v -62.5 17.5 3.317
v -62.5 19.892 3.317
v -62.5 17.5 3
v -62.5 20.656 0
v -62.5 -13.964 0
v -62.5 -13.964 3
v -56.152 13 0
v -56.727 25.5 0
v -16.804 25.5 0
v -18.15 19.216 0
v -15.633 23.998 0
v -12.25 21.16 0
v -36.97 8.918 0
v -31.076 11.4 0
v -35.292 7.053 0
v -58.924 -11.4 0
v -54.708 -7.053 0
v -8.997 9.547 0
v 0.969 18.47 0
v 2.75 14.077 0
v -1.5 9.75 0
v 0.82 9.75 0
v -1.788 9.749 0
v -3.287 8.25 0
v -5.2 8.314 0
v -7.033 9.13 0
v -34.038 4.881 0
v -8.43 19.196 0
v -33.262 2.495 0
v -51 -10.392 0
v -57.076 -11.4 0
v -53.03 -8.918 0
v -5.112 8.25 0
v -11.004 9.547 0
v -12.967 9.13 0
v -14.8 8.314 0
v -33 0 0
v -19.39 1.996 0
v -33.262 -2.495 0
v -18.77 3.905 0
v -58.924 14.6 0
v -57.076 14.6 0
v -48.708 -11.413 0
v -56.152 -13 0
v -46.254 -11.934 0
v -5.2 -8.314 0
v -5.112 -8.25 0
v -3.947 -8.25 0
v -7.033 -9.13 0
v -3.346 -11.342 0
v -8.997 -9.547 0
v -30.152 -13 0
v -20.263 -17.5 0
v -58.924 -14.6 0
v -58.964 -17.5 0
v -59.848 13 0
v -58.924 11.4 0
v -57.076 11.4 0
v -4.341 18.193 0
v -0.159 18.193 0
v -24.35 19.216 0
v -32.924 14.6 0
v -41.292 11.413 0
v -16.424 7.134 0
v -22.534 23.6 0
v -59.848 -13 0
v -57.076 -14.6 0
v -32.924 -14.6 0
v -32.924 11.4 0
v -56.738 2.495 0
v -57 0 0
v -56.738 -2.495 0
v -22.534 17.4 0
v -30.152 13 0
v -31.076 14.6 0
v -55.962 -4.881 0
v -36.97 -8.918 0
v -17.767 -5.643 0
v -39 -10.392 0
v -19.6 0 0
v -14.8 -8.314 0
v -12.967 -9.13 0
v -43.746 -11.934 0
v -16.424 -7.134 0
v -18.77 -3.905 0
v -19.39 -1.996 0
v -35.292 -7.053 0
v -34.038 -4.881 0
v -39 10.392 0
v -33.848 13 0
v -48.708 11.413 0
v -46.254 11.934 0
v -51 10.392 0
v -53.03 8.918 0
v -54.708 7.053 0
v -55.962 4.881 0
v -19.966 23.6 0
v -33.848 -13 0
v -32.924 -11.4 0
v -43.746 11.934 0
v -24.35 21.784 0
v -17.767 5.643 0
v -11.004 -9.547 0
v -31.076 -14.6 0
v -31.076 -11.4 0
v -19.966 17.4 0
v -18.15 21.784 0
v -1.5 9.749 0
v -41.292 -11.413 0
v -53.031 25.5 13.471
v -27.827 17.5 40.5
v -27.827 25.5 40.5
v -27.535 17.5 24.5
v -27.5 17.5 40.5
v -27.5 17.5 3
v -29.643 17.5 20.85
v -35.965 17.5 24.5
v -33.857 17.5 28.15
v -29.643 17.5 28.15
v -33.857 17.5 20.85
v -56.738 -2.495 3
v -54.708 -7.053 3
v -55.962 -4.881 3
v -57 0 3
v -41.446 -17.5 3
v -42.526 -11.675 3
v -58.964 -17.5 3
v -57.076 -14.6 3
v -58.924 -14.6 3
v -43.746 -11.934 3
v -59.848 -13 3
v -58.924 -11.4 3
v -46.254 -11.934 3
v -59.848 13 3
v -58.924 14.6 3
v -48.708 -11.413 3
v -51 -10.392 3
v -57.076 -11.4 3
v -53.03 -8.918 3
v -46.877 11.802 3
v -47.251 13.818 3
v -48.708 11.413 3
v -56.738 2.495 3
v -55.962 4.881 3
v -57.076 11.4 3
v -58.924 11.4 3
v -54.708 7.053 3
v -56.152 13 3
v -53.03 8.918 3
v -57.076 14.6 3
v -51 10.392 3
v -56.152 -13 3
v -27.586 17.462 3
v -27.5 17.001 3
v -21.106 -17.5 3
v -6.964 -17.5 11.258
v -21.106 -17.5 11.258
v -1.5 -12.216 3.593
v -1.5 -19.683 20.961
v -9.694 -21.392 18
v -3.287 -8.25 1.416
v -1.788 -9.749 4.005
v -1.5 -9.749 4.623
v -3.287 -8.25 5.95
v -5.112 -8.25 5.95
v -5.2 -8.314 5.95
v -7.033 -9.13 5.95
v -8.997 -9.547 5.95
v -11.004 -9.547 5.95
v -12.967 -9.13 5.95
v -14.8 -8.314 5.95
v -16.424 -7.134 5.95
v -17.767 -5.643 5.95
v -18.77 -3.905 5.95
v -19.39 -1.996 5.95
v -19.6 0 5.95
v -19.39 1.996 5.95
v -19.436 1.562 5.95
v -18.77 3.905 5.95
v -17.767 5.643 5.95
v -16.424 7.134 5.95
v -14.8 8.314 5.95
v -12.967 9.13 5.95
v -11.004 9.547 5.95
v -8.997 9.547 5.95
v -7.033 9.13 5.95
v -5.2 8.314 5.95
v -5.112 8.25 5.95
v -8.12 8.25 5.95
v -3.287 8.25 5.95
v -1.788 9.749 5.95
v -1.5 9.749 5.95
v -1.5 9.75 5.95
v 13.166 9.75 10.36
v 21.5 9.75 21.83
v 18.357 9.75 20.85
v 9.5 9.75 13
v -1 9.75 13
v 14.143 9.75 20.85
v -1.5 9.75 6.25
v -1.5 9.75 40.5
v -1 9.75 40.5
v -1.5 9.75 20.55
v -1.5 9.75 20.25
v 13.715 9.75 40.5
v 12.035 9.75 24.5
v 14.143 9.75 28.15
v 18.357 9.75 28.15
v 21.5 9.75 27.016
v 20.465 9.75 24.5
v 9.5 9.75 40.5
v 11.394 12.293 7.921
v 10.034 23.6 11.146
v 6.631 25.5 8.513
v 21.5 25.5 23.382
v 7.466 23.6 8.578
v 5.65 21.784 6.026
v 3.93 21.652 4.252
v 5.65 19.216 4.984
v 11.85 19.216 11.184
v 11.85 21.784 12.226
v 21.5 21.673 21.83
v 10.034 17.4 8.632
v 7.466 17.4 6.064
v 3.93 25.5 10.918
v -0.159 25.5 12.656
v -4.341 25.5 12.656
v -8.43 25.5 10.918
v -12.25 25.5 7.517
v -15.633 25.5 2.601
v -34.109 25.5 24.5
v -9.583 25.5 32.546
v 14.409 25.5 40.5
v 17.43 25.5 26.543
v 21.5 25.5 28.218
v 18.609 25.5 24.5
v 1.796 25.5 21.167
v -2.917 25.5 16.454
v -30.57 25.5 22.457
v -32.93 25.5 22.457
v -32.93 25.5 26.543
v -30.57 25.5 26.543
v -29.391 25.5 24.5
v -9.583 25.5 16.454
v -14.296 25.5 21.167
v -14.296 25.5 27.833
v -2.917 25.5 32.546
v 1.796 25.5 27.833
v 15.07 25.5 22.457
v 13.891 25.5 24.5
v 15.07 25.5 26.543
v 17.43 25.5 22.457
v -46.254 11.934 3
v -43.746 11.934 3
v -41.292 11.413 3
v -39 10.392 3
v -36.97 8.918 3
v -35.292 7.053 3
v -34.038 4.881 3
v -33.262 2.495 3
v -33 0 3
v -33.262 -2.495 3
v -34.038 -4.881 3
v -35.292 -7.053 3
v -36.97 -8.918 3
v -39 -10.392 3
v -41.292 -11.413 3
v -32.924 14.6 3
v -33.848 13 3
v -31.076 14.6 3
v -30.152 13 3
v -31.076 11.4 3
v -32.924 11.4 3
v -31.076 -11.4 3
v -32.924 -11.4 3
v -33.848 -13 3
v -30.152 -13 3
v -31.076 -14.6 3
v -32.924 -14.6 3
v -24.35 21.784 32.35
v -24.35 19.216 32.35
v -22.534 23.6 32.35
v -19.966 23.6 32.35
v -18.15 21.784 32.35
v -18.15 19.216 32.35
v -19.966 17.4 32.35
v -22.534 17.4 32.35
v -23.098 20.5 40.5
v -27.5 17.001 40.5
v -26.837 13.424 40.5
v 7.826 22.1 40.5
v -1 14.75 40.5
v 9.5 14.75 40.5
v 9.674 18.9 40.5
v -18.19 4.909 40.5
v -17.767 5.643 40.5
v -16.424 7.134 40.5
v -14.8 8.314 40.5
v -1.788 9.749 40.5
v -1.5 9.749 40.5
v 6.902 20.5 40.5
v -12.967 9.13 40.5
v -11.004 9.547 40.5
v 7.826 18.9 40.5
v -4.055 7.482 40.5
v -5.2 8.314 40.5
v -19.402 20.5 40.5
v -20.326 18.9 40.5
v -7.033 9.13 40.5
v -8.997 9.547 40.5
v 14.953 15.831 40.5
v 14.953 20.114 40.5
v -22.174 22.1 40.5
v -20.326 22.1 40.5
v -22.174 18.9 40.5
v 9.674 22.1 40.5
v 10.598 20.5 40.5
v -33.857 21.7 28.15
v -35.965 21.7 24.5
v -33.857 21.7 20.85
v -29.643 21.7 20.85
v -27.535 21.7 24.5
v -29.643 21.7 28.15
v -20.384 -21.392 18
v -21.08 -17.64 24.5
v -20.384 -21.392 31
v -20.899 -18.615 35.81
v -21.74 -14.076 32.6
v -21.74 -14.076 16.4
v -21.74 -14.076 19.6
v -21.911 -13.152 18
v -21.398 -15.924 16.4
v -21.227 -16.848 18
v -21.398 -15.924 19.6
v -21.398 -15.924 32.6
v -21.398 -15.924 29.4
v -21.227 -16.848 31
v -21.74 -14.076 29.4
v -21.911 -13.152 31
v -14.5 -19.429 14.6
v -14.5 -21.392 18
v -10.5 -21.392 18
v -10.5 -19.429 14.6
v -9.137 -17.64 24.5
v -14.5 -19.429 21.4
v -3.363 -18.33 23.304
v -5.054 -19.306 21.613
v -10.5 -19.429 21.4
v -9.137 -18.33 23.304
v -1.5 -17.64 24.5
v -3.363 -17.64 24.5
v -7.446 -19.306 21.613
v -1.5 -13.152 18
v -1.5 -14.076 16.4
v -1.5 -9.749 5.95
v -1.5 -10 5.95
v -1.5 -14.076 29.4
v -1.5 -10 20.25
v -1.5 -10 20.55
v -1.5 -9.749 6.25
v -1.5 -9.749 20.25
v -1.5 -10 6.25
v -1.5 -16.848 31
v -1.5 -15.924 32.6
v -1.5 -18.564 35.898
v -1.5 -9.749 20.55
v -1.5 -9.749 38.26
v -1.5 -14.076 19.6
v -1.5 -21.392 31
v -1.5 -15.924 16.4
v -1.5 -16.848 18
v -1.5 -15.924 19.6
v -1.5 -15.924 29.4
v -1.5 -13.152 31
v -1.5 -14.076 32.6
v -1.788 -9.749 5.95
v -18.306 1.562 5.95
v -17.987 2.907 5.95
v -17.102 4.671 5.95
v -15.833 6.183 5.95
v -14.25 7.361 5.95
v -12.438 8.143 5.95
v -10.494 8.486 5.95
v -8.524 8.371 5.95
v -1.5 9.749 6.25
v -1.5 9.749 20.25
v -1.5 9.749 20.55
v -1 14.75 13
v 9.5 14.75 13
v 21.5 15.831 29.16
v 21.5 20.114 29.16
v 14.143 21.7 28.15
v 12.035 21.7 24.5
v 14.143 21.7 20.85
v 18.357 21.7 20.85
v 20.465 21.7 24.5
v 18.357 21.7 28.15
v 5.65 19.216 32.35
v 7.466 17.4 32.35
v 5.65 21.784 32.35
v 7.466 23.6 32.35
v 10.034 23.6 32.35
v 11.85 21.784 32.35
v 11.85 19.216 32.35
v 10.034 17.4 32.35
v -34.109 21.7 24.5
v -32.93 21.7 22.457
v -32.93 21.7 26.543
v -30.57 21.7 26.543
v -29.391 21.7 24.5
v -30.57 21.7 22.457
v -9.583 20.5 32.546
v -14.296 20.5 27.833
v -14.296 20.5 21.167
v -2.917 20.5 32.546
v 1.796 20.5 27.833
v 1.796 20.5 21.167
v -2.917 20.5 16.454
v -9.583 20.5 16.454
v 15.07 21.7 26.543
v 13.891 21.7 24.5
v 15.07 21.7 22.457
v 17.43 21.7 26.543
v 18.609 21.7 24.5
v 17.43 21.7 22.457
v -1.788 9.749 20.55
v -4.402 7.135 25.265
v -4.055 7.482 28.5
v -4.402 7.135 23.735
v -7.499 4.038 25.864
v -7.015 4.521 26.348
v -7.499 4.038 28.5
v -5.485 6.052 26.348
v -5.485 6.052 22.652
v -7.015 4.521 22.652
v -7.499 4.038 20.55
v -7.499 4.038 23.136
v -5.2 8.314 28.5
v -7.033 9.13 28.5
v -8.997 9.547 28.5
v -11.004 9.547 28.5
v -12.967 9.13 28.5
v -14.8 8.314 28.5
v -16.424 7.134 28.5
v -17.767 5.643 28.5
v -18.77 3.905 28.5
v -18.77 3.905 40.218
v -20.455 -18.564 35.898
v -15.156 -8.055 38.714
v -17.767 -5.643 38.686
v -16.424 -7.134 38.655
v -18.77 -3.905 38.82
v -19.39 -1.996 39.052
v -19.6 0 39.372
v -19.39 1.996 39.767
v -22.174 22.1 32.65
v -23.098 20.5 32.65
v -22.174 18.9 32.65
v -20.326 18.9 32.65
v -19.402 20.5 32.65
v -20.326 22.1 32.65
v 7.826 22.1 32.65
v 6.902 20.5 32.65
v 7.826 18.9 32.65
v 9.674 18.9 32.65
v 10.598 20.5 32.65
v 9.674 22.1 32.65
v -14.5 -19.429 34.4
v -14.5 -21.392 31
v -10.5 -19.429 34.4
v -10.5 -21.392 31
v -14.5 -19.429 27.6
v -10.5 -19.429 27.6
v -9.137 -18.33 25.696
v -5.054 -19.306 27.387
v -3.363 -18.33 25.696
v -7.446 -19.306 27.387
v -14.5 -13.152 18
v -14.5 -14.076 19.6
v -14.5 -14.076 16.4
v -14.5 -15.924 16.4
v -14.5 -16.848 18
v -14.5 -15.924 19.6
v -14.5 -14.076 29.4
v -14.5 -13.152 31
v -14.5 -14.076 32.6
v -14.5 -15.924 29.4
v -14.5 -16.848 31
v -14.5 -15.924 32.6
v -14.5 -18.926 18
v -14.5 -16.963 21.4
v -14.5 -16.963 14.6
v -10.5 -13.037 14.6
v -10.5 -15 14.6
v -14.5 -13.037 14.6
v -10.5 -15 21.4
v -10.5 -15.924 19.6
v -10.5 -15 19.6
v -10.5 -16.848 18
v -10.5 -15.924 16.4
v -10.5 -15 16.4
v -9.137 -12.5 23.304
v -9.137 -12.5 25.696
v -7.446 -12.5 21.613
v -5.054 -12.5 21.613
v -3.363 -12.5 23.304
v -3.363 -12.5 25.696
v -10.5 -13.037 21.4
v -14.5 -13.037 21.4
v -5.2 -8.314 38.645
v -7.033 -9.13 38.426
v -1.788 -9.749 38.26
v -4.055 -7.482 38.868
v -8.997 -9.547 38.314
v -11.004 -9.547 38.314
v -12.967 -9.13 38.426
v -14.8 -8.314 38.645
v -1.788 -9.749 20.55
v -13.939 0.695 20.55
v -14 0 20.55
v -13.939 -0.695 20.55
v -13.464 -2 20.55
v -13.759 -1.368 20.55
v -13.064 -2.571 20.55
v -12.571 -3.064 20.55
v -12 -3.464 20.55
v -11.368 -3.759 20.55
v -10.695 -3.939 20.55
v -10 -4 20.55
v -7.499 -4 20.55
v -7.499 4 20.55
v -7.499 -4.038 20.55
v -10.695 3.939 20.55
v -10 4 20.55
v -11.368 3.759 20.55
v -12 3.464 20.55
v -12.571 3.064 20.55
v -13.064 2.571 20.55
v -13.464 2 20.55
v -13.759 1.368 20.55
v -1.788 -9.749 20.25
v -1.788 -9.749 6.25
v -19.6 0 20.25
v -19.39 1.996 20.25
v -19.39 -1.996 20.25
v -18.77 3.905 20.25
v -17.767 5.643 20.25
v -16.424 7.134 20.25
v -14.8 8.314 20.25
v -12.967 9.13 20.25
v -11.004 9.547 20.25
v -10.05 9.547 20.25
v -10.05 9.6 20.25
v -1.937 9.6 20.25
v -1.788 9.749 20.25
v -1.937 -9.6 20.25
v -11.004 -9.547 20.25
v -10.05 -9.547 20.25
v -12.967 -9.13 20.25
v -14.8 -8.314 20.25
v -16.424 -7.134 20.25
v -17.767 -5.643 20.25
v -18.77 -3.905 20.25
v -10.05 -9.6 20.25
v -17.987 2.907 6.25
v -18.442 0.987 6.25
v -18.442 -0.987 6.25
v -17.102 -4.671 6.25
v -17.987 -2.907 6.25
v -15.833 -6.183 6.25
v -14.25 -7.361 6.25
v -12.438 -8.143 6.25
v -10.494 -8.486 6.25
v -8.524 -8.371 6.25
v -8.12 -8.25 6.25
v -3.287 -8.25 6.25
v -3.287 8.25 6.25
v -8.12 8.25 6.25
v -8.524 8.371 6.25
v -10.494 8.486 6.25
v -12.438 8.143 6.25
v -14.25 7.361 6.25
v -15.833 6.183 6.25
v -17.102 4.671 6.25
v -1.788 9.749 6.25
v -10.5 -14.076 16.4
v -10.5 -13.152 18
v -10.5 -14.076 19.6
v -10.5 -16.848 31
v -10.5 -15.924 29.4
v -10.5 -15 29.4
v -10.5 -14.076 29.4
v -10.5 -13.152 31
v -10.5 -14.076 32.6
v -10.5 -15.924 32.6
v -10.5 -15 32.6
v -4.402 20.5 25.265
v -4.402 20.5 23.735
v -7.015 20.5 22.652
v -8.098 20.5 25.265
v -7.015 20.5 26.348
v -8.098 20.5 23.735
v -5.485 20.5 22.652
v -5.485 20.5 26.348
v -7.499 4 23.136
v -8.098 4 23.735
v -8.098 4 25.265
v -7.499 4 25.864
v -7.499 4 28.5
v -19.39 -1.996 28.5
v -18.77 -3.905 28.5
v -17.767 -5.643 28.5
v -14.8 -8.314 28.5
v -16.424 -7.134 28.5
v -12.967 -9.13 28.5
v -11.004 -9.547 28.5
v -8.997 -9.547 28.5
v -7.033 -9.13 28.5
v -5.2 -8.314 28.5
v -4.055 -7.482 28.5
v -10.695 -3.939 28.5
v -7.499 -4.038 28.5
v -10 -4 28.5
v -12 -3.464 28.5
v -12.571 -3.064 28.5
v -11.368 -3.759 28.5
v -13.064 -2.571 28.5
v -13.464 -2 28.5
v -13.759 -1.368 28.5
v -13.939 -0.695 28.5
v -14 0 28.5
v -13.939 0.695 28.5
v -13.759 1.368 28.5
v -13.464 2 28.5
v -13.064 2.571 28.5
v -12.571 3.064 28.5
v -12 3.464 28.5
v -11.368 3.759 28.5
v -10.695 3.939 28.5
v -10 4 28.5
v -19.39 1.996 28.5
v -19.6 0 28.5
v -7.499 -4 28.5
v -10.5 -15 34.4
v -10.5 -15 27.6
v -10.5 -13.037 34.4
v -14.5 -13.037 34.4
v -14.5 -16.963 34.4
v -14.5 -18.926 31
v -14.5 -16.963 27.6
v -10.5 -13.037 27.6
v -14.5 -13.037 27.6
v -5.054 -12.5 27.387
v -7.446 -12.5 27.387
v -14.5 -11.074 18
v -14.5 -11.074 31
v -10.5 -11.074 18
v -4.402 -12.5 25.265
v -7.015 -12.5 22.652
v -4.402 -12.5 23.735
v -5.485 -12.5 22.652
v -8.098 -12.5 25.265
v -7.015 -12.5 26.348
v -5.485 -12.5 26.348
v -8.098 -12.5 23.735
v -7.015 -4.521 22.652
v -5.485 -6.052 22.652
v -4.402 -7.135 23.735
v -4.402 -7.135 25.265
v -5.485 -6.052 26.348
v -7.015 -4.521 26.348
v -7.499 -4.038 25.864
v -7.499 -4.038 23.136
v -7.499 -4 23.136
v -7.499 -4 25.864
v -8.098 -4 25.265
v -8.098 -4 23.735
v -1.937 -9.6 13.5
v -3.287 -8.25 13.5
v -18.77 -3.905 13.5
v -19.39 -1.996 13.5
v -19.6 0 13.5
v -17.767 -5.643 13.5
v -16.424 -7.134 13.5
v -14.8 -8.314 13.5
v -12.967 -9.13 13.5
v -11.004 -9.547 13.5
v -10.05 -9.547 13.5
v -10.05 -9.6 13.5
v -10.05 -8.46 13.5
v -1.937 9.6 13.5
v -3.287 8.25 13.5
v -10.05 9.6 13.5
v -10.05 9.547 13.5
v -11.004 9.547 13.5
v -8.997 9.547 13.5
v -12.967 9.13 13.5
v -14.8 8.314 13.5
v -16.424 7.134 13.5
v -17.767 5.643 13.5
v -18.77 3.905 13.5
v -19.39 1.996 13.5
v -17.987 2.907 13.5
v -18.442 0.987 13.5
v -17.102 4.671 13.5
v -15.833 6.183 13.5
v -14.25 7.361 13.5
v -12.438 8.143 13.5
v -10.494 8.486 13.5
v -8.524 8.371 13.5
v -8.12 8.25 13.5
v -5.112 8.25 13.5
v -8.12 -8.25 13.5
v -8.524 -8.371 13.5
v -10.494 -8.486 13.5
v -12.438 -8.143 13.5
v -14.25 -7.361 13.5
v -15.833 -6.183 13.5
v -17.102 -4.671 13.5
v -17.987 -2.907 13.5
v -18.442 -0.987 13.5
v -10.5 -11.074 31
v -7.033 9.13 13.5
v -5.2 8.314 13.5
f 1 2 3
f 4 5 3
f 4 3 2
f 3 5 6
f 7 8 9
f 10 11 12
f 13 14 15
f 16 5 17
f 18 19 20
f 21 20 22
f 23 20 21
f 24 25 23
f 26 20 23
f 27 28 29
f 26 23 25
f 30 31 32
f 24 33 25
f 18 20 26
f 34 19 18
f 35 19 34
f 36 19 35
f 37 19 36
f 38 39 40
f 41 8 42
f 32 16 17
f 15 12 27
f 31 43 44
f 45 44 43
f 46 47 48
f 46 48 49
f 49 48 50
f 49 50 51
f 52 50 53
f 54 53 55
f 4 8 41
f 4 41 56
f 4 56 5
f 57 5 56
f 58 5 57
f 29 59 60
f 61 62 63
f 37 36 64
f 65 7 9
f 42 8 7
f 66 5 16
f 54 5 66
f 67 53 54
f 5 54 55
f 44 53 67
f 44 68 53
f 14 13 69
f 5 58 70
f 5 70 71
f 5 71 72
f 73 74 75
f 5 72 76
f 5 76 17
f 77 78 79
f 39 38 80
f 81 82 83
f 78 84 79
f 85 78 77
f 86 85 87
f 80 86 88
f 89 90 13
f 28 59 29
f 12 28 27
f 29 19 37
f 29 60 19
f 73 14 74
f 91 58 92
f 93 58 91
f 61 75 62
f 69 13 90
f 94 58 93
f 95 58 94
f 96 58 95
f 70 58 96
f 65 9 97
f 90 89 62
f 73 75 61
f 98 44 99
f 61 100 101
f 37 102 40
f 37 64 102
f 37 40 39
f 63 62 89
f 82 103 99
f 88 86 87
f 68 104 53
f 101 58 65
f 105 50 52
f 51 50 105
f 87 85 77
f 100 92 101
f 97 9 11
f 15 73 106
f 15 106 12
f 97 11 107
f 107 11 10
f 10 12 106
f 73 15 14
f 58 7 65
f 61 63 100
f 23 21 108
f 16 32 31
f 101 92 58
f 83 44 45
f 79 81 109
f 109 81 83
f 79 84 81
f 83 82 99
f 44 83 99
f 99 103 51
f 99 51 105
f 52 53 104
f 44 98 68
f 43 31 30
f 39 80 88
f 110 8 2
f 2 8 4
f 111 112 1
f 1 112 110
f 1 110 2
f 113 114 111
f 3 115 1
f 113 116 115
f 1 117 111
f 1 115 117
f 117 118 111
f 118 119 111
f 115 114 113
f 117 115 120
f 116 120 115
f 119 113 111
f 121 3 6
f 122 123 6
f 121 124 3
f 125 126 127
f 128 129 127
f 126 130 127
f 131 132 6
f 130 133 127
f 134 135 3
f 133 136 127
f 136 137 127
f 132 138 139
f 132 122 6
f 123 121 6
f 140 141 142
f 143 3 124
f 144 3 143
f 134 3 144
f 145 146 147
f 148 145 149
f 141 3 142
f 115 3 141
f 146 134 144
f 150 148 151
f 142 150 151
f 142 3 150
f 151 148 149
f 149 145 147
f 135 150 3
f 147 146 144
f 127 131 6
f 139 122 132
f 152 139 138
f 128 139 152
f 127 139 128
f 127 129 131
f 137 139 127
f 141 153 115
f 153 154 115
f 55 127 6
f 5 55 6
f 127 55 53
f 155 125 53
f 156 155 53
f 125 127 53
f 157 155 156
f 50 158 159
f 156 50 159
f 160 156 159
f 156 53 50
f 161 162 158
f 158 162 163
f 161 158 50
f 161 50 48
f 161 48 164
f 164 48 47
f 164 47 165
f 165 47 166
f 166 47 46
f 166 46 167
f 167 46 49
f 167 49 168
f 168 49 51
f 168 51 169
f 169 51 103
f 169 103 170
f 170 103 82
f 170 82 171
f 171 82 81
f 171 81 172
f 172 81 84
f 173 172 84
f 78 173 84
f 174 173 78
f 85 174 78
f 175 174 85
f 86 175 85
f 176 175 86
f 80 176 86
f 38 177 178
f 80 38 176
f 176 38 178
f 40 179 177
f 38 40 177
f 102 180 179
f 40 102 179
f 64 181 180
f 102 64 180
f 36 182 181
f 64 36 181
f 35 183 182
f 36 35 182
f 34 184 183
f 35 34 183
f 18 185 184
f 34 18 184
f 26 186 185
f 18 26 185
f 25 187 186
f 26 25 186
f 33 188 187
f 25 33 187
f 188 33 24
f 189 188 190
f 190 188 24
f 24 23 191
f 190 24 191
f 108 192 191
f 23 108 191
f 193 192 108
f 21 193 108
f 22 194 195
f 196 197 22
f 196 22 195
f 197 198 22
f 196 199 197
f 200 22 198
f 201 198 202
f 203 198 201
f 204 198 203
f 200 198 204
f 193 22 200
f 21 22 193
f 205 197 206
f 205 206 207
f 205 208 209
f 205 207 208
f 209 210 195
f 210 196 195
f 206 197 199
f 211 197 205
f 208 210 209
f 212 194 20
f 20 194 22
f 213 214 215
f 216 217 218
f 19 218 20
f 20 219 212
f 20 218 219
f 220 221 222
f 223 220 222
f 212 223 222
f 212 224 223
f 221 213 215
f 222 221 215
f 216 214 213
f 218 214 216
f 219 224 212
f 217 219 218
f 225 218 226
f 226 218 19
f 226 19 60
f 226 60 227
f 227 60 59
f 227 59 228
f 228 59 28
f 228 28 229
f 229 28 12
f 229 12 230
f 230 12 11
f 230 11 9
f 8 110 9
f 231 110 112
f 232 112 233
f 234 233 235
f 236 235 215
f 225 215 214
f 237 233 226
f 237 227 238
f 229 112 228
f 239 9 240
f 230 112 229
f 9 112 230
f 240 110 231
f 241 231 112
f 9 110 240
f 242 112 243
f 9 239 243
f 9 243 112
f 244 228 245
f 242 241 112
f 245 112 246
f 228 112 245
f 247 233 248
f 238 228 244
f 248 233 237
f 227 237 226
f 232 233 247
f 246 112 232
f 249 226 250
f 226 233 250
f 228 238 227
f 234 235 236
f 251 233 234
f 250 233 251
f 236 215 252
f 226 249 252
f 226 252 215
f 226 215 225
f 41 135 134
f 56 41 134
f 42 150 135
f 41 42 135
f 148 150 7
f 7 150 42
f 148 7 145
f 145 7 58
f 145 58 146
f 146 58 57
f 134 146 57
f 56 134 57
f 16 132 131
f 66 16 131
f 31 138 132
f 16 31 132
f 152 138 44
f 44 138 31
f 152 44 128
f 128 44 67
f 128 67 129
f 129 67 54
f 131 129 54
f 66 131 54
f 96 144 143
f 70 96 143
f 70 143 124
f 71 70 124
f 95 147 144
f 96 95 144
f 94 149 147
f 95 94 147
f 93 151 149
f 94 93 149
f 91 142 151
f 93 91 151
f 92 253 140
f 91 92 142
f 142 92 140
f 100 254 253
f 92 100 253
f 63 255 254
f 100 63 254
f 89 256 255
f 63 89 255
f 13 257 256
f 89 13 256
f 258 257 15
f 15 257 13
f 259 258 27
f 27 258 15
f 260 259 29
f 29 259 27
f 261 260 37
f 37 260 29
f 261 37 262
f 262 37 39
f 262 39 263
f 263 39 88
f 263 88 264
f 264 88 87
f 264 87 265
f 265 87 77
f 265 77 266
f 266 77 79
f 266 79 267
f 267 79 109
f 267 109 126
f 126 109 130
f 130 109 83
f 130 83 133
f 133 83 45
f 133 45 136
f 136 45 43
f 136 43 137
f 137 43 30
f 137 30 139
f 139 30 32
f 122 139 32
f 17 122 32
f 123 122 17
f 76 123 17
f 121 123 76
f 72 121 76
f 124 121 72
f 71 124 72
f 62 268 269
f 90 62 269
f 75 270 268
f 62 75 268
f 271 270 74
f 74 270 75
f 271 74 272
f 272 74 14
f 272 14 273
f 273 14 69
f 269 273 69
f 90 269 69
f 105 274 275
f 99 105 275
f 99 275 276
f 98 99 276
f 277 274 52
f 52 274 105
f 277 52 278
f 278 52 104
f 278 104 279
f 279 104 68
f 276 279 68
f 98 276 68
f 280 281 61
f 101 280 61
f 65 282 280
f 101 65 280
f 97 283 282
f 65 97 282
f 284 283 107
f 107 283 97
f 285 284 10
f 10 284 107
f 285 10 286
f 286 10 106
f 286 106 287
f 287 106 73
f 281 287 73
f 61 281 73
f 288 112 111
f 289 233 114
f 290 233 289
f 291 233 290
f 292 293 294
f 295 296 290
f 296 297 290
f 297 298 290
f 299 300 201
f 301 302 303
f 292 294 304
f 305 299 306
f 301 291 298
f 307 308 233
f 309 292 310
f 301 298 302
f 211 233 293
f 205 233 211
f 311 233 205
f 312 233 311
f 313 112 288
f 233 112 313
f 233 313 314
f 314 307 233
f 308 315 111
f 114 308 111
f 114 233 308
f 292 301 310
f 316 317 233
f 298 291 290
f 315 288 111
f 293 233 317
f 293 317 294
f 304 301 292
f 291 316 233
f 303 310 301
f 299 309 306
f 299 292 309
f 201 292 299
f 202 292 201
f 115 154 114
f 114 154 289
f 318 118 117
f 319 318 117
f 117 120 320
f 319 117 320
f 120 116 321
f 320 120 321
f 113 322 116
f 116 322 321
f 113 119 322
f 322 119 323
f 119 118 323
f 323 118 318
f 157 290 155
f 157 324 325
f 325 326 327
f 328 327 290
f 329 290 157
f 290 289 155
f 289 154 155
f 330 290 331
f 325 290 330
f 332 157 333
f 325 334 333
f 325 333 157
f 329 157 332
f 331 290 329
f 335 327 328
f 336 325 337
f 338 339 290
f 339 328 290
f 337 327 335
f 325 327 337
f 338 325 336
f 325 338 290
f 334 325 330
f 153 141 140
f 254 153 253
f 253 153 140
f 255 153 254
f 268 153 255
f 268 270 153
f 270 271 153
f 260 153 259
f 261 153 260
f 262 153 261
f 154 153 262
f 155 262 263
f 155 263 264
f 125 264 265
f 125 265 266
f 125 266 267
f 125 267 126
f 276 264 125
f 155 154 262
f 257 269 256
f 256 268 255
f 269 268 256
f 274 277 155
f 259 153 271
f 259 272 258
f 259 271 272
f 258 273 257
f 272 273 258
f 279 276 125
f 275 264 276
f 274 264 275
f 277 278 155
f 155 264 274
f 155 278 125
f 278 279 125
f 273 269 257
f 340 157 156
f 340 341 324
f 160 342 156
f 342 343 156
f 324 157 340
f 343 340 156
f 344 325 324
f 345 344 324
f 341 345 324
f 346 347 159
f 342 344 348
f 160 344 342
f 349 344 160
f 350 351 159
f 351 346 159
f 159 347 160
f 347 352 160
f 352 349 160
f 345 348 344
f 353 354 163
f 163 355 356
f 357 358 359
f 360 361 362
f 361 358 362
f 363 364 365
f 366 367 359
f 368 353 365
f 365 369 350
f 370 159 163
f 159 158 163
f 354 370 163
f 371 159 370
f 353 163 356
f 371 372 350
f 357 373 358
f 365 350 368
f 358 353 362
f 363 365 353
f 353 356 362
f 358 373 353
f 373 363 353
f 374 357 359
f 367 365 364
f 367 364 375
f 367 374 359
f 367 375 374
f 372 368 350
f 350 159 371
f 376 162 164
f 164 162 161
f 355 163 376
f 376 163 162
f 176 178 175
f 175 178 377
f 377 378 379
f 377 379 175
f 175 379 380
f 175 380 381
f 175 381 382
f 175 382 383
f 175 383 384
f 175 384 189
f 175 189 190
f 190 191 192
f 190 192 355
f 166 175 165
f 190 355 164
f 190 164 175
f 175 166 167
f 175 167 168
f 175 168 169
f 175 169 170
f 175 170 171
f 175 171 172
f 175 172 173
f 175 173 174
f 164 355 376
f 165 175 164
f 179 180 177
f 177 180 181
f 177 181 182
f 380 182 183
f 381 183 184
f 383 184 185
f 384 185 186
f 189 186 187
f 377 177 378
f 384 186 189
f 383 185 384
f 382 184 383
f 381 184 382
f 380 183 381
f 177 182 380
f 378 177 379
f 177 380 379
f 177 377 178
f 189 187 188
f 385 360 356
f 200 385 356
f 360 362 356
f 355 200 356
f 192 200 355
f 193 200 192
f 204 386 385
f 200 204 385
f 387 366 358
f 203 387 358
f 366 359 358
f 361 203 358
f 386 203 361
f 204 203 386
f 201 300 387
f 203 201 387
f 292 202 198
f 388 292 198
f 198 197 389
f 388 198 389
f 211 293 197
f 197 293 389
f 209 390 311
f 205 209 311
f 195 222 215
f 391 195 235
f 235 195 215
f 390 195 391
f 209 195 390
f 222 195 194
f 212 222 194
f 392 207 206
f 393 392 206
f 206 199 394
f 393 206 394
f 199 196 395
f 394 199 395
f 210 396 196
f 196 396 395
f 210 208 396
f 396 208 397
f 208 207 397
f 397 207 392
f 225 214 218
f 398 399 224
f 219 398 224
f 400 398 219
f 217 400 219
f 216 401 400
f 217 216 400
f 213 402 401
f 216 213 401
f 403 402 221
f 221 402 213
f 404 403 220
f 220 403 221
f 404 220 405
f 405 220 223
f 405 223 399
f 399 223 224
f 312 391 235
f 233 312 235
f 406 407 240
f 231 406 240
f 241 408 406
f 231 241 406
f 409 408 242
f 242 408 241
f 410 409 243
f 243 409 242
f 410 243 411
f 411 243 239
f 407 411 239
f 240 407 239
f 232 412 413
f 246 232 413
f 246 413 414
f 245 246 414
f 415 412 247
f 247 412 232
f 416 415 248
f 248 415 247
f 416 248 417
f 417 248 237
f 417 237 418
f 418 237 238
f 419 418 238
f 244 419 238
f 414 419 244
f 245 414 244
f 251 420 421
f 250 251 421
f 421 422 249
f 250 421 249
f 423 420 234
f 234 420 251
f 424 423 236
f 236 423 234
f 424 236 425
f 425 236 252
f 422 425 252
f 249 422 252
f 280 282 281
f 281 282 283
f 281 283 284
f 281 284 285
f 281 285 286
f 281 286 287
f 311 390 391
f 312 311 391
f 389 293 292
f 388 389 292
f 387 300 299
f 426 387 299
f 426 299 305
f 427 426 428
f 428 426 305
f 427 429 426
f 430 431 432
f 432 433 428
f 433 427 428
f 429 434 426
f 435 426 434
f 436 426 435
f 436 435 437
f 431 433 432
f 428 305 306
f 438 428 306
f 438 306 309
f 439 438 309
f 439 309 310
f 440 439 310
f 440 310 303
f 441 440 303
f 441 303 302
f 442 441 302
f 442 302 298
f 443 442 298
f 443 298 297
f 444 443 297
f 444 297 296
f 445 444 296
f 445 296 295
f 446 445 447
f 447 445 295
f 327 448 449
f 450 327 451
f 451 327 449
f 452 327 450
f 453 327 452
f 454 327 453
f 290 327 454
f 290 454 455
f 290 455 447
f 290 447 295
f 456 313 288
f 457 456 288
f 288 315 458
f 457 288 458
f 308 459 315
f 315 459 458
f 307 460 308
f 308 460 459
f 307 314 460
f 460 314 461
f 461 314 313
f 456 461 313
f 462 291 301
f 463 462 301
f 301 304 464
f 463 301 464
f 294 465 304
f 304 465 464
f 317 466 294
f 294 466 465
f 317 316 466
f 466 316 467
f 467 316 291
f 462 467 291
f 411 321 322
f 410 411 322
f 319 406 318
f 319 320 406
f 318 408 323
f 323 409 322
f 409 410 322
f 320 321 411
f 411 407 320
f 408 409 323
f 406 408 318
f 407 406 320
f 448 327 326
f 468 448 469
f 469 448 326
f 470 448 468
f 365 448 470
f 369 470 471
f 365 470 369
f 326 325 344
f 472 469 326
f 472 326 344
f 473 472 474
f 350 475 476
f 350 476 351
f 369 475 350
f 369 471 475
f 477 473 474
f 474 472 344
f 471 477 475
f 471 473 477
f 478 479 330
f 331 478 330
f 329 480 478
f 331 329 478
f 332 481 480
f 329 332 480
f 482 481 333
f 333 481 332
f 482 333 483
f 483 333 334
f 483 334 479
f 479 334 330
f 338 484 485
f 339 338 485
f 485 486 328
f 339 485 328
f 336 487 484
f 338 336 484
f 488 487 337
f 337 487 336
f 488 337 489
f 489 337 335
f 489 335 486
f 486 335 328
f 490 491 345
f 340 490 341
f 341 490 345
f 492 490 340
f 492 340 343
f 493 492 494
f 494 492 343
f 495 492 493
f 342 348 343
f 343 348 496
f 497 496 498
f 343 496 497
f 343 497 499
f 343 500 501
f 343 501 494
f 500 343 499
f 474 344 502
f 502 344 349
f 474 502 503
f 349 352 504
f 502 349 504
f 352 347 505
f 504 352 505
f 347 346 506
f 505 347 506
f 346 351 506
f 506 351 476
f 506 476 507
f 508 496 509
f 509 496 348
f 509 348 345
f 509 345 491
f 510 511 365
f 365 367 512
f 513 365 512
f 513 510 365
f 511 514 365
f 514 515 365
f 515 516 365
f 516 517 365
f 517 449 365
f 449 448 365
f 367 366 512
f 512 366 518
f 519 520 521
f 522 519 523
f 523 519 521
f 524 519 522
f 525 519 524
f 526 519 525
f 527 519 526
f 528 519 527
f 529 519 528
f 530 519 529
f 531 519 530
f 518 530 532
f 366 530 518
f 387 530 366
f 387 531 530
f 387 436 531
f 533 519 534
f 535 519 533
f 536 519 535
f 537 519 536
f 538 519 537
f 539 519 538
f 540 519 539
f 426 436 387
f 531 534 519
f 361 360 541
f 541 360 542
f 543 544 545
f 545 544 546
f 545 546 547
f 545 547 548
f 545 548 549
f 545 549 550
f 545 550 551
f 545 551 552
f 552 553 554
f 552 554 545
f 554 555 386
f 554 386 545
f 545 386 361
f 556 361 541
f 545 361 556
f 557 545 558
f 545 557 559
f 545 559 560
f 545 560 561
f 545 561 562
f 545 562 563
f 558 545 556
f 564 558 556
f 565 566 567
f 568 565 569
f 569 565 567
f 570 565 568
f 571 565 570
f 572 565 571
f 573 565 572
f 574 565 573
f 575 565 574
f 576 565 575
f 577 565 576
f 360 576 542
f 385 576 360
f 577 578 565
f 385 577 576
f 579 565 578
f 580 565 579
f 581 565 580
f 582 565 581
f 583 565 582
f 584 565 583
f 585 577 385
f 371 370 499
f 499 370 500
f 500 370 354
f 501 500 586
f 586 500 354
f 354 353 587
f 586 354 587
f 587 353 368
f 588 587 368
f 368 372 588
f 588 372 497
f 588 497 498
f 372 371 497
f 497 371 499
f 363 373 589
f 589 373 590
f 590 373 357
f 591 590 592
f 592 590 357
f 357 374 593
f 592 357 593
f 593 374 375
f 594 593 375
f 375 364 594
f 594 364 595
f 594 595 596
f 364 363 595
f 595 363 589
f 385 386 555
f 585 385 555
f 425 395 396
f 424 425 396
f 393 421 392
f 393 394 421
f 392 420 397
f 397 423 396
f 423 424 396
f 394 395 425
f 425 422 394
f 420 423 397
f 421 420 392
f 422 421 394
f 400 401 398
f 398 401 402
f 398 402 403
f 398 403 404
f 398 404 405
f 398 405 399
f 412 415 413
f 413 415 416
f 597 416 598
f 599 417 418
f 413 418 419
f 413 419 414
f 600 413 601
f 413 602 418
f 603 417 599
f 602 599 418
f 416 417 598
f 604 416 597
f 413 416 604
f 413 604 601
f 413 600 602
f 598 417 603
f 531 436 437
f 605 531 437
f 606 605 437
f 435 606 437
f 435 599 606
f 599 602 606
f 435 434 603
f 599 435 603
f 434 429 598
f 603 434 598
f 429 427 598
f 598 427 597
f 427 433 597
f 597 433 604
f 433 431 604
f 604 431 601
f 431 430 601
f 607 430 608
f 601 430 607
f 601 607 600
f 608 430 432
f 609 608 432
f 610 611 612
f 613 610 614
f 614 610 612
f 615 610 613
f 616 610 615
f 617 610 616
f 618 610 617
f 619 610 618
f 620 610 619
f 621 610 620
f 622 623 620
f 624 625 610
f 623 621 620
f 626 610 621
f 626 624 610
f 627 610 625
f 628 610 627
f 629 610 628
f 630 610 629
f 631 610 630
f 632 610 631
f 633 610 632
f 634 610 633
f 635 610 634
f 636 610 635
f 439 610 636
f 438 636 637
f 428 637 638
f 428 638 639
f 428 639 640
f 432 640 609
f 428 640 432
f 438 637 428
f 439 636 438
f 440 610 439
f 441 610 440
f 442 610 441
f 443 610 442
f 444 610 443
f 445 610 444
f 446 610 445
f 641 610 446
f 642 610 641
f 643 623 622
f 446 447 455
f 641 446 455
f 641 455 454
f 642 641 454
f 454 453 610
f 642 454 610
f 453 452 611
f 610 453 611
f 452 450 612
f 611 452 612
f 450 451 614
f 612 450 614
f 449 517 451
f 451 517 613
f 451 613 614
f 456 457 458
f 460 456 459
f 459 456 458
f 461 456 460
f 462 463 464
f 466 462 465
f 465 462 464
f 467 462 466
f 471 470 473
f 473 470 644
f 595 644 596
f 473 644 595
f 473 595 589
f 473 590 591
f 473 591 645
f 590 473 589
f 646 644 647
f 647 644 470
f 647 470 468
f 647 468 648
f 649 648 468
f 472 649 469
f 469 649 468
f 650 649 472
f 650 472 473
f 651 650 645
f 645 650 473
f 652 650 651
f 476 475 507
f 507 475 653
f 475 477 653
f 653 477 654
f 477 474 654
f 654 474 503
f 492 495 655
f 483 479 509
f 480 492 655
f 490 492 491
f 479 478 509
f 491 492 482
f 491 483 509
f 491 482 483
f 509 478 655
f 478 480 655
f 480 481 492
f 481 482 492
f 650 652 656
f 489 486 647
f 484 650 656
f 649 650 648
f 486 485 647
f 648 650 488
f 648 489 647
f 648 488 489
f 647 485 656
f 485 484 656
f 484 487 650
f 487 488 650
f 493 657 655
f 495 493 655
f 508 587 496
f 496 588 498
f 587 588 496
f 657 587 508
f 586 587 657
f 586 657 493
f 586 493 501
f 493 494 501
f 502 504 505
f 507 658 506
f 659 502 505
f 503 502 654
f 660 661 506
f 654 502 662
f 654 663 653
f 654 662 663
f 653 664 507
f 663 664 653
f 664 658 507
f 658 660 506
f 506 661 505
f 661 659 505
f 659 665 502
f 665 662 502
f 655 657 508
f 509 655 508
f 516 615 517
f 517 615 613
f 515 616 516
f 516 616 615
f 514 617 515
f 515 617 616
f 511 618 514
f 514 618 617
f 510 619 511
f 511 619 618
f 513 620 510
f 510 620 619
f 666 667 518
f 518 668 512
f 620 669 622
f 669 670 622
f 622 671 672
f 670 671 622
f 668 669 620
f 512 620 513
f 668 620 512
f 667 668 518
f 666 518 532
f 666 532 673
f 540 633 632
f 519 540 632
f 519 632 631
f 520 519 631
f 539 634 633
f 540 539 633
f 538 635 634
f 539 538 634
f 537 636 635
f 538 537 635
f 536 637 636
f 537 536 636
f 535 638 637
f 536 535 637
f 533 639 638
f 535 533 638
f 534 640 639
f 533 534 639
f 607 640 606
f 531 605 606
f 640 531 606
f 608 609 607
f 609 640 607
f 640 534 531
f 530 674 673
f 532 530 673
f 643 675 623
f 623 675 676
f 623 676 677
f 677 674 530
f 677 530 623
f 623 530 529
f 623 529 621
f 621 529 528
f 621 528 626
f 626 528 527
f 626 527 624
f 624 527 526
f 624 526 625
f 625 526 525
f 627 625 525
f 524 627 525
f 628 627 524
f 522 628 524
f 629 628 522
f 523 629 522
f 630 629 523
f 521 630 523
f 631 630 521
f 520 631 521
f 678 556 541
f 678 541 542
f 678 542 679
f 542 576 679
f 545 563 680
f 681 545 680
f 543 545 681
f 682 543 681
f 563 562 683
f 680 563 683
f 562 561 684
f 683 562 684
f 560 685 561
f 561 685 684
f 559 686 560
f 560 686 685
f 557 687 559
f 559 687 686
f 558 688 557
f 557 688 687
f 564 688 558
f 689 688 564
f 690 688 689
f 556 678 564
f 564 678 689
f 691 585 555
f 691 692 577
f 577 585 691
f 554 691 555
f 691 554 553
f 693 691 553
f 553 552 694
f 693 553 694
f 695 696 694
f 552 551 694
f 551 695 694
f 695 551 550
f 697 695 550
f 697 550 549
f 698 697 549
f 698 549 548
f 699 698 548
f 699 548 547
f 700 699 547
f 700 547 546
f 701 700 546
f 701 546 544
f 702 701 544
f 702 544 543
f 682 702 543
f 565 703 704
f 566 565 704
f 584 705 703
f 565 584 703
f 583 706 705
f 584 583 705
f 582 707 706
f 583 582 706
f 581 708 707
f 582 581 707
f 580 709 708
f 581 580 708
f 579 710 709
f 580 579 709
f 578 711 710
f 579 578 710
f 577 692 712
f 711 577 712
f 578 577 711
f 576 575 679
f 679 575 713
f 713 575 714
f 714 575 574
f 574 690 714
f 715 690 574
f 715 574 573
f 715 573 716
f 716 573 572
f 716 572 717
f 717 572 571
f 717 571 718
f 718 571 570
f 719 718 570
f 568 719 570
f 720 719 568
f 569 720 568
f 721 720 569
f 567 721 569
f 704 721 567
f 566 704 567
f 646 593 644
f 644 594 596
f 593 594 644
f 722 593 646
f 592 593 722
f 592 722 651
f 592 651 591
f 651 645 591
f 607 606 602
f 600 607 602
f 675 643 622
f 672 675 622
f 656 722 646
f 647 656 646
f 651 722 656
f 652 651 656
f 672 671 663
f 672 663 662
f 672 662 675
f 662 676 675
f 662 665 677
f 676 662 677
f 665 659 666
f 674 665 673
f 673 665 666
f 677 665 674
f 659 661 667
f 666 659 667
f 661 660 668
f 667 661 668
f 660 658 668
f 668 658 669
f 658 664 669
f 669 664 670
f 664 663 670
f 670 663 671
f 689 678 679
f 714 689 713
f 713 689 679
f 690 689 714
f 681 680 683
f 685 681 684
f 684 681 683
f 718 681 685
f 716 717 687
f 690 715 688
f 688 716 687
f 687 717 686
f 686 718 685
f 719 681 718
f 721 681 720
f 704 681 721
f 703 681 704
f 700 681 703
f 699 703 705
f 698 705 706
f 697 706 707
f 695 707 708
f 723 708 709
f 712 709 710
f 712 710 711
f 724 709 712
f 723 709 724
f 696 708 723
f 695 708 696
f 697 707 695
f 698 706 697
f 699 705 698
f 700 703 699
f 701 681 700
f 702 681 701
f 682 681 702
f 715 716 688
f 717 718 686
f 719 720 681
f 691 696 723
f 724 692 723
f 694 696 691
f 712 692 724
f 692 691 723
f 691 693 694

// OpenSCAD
// file: ../inc/spur_generator.scad
// Copyright 2011 Cliff L. Biffle.
// This file is licensed Creative Commons Attribution-ShareAlike 3.0.
// http://creativecommons.org/licenses/by-sa/3.0/

// You can get this file from http://www.thingiverse.com/thing:3575
use <parametric_involute_gear_v5.0.scad>

// Couple handy arithmetic shortcuts
function sqr(n) = pow(n, 2);
function cube(n) = pow(n, 3);

// This was derived as follows:
// In Greg Frost's original script, the outer radius of a spur
// gear can be computed as...
function gear_outer_radius(number_of_teeth, circular_pitch) =
  (sqr(number_of_teeth) * sqr(circular_pitch) + 64800)
    / (360 * number_of_teeth * circular_pitch);

// We can fit gears to the spacing by working it backwards.
//  spacing = gear_outer_radius(teeth1, cp)
//          + gear_outer_radius(teeth2, cp);
//
// I plugged this into an algebra system, assuming that spacing,
// teeth1, and teeth2 are given.  By solving for circular pitch,
// we get this terrifying equation:
function fit_spur_gears(n1, n2, spacing) =
  (180 * spacing * n1 * n2  +  180
    * sqrt(-(2*n1*cube(n2)-(sqr(spacing)-4)*sqr(n1)*sqr(n2)+2*cube(n1)*n2)))
  / (n1*sqr(n2) + sqr(n1)*n2);
// file: ../inc/nema.scad
motor_side = 35;
motor_height = 36.5;
motor_shaft_length = 19;
motor_short_shaft_length = 10;
motor_shoulder_height = 2;
motor_shoulder_diam = 22;

module nema14() {
  cube([motor_side,motor_side,motor_height],center=true);

  // shaft
  translate([0,0,motor_height/2+motor_shaft_length/2+motor_shoulder_height])
    cylinder(r=5/2,h=motor_shaft_length,center=true);

  // shoulder
  translate([0,0,motor_height/2+motor_shoulder_height/2])
    cylinder(r=motor_shoulder_diam/2,h=motor_shoulder_height,center=true); // shoulder

  // short shaft
  translate([0,0,-motor_height/2-motor_short_shaft_length/2])
    cylinder(r=5/2,h=motor_short_shaft_length,center=true);
}

//nema14();
// file: ../gears.scad
da6 = 1 / cos(180 / 6) / 2;

// Copyright 2011 Cliff L. Biffle.
// This file is licensed Creative Commons Attribution-ShareAlike 3.0.
// http://creativecommons.org/licenses/by-sa/3.0/

// You can get this file from http://www.thingiverse.com/thing:3575
use <inc/parametric_involute_gear_v5.0.scad>
use <inc/nema.scad>
use <inc/spur_generator.scad>

// Here's an example.
large_tooth_num = 43;
small_tooth_num = 9;
gear_dist = 35;
// printed 51 and 9
// 7 and 41
// 9 and 41
// 11 and 49
gear_pitch = fit_spur_gears(large_tooth_num, small_tooth_num, gear_dist);

small_tooth_height = 7;
small_gear_height  = 15;

module large_gear() {
  difference() {
    // Simple Test:
    gear (circular_pitch=gear_pitch,
      //gear_thickness = 12,
      gear_thickness = 3.5,
      //rim_thickness = 15,
      rim_thickness = 5.5,
      rim_width = 1,
      //hub_thickness = 17,
      hub_thickness = 10,
      hub_diameter = 15,
      number_of_teeth = large_tooth_num,
      circles=4,
      bore_diameter = 0);
    cylinder(r=6/2,$fn=36,h=50,center=true);
    translate([0,0,10]) {
      cylinder(r=da6*10,h=10,center=true,$fn=6); // nut trap for m6 nut
    }
  }
}

module small_gear() {
  difference() {
    gear (circular_pitch=gear_pitch,
      gear_thickness = small_tooth_height,
      rim_thickness = small_tooth_height,
      hub_thickness = small_gear_height,
      circles=0,
      number_of_teeth = small_tooth_num,
      rim_width = 2,
      bore_diameter = 0,
      hub_diameter = 15);

    // flatted motor hole
    difference() {
      cylinder(r=5.1/2,$fn=36,h=90,center=true);
      translate([4.6,0,0]) cube([5,5,100],center=true);
    }

    // m3 set screw
    // m3 nut == 5.5mm * 3mm
    translate([3.05,0,small_gear_height-3.5]) {
      rotate([0,90,0]) cylinder(r=5.5*da6,h=3,$fn=6,center=true);
      translate([0,0,2.1]) cube([3,5.5,3],center=true);
      rotate([90,0,0]) rotate([0,90,0]) cylinder(r=3*da6,h=9,$fn=6,center=true);
    }
  }
}
// main file
// You can get this file from http://www.thingiverse.com/thing:3575
use <../main.scad>

translate([-10,0,0]) rotate([90,0,0]) extruder_body();

//translate([50,0,5]) rotate([0,90,0]) idler();

% cube([150,150,1],center=true);
